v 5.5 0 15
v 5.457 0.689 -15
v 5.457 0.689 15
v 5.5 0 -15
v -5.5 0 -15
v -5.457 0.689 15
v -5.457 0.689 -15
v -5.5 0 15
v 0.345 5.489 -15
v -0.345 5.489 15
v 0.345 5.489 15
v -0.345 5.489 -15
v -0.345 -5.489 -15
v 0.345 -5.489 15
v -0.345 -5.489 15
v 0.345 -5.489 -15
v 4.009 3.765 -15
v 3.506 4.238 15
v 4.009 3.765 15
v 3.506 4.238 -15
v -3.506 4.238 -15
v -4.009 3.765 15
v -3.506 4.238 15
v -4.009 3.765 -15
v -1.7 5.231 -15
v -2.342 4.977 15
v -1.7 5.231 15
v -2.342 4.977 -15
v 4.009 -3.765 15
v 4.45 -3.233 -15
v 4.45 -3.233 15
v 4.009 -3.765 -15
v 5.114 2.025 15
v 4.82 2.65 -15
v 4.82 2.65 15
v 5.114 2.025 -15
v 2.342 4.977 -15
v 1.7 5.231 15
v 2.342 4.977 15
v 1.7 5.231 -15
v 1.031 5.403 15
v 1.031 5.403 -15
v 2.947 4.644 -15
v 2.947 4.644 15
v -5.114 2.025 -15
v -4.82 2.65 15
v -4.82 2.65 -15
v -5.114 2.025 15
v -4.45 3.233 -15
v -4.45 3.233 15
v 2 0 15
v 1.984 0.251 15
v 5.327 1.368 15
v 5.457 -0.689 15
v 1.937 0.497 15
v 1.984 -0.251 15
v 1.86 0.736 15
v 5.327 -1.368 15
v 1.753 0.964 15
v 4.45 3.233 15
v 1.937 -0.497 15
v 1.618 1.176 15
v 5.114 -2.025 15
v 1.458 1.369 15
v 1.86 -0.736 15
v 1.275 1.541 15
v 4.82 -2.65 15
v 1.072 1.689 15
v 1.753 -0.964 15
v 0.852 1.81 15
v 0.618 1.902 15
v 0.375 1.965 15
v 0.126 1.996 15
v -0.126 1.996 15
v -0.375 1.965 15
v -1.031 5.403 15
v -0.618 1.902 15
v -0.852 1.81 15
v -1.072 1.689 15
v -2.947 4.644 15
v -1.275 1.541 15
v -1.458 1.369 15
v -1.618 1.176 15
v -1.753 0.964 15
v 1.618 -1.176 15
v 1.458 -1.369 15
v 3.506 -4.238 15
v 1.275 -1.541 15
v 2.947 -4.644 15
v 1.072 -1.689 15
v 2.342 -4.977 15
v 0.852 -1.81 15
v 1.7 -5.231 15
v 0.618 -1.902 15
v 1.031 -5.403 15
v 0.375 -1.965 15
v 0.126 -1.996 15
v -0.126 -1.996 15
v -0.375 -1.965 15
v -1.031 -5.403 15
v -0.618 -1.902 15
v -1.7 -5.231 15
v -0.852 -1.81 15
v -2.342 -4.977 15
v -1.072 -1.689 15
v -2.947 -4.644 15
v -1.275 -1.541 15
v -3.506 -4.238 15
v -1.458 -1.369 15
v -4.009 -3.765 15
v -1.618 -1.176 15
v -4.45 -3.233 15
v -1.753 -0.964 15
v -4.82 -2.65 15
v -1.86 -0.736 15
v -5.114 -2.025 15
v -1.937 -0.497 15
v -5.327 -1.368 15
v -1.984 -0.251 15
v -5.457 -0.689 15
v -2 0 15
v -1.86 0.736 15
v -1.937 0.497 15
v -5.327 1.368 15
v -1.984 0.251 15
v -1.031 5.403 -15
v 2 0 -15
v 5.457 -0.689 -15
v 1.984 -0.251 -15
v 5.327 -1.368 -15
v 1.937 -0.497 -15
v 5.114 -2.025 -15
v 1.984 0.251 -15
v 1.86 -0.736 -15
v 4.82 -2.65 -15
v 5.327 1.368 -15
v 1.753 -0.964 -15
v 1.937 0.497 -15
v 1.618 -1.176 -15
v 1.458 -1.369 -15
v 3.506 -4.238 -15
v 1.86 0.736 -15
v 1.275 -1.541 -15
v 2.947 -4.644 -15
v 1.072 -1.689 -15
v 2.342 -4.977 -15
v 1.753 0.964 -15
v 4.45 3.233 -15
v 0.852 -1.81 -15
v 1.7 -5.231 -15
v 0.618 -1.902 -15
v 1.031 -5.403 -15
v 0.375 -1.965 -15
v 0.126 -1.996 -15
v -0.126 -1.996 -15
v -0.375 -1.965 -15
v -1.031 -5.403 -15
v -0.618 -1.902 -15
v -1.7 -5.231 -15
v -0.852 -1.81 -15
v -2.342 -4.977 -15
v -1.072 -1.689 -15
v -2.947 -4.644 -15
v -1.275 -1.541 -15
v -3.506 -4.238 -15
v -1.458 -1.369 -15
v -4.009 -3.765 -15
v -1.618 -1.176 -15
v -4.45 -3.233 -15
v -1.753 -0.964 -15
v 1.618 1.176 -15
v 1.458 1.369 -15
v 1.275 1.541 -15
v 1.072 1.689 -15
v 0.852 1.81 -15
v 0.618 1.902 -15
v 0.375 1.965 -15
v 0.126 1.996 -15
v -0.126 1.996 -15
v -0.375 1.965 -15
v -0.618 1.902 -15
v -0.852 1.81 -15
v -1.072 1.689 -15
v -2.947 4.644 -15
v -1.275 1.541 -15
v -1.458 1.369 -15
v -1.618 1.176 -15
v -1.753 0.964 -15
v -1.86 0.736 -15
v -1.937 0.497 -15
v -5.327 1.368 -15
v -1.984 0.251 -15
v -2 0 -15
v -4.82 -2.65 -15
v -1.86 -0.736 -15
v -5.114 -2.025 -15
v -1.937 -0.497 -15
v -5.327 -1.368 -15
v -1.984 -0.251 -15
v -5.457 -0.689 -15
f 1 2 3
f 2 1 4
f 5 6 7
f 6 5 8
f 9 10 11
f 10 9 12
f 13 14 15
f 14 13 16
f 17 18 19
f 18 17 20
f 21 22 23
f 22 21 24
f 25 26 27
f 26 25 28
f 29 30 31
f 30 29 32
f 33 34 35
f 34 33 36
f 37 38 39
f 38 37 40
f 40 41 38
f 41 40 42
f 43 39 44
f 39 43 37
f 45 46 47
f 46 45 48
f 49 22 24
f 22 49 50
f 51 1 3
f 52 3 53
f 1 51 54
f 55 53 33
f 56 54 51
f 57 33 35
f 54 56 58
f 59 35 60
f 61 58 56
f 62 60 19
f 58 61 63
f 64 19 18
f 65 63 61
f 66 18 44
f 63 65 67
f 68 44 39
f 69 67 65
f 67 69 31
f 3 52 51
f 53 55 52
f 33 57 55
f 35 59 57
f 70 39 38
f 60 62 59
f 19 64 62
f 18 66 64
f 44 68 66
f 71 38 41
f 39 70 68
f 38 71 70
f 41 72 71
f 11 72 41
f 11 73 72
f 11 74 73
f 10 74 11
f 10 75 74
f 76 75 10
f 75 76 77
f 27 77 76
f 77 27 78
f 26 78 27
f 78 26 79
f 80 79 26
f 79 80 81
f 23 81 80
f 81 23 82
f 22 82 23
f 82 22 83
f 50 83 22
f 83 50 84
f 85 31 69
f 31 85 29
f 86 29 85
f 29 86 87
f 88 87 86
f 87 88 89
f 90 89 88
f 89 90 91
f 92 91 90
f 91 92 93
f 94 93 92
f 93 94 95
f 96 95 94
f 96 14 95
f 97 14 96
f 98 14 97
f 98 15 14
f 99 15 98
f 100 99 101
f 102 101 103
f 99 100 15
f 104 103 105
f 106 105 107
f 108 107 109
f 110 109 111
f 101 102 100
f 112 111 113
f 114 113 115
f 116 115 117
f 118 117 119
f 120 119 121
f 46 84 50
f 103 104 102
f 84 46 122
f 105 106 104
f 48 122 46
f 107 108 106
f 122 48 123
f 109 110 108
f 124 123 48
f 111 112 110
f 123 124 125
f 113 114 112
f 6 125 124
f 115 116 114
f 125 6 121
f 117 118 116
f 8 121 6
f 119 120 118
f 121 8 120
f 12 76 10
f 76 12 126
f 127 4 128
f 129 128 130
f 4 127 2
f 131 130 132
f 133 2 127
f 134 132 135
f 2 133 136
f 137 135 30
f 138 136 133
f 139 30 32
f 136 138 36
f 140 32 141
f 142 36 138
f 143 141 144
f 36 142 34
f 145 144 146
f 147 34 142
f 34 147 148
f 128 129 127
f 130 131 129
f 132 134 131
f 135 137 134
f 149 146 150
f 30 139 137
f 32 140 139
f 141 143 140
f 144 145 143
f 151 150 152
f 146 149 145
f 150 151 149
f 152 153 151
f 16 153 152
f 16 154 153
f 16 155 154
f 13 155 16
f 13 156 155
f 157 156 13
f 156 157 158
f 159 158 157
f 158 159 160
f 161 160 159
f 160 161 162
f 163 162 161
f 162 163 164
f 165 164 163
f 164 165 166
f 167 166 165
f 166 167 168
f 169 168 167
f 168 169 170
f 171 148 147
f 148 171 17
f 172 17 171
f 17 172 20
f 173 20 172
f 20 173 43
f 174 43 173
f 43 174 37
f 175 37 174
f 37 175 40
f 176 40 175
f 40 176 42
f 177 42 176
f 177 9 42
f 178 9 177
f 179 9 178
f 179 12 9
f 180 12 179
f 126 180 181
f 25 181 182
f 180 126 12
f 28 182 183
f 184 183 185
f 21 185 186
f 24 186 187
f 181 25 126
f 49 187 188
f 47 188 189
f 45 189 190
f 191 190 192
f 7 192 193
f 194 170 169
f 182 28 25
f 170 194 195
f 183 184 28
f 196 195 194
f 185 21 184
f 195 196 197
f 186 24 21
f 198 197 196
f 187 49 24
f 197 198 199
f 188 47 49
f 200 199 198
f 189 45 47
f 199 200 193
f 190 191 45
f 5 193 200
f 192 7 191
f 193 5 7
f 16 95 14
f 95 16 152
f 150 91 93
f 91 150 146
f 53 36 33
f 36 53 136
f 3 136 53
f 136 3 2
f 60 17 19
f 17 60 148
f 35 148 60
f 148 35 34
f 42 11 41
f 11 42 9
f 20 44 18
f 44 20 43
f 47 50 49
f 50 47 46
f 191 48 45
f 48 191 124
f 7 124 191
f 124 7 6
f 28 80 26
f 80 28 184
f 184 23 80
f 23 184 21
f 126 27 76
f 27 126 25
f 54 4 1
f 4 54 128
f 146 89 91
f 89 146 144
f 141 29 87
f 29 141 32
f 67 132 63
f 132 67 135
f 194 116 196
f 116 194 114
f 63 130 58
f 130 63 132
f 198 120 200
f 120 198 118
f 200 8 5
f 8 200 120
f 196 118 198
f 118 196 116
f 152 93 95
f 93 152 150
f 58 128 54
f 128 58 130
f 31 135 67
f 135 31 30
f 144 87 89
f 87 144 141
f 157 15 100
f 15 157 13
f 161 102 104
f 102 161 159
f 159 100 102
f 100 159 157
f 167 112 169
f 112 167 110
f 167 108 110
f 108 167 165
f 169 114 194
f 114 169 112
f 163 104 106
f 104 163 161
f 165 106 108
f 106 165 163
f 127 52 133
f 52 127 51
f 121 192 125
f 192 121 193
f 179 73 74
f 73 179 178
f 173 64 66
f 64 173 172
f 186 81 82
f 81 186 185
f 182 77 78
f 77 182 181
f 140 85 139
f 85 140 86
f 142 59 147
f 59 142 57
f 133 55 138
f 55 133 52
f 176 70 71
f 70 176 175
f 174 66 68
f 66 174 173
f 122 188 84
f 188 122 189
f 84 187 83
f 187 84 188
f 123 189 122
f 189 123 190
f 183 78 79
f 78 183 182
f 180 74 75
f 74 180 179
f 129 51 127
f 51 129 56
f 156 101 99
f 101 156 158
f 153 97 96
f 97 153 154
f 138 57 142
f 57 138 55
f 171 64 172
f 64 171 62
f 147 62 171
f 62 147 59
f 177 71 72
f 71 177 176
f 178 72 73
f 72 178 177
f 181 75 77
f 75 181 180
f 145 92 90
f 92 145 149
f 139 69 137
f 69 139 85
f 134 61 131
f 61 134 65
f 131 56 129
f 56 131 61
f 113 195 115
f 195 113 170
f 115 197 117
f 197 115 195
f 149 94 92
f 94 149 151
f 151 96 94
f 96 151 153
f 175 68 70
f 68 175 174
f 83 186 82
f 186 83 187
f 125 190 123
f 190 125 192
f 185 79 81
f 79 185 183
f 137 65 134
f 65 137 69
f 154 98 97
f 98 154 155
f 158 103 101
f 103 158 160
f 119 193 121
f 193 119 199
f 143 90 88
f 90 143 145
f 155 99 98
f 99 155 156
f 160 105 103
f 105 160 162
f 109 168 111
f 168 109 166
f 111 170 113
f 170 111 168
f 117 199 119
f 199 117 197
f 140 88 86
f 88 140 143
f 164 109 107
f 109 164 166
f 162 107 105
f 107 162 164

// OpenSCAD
$fn = 50;


difference() {
	union() {
		translate(v = [0, 0, -15.0000000000]) {
			cylinder(h = 30, r = 5.5000000000);
		}
	}
	union() {
		translate(v = [0, 0, -100.0000000000]) {
			cylinder(h = 200, r = 2);
		}
	}
}
